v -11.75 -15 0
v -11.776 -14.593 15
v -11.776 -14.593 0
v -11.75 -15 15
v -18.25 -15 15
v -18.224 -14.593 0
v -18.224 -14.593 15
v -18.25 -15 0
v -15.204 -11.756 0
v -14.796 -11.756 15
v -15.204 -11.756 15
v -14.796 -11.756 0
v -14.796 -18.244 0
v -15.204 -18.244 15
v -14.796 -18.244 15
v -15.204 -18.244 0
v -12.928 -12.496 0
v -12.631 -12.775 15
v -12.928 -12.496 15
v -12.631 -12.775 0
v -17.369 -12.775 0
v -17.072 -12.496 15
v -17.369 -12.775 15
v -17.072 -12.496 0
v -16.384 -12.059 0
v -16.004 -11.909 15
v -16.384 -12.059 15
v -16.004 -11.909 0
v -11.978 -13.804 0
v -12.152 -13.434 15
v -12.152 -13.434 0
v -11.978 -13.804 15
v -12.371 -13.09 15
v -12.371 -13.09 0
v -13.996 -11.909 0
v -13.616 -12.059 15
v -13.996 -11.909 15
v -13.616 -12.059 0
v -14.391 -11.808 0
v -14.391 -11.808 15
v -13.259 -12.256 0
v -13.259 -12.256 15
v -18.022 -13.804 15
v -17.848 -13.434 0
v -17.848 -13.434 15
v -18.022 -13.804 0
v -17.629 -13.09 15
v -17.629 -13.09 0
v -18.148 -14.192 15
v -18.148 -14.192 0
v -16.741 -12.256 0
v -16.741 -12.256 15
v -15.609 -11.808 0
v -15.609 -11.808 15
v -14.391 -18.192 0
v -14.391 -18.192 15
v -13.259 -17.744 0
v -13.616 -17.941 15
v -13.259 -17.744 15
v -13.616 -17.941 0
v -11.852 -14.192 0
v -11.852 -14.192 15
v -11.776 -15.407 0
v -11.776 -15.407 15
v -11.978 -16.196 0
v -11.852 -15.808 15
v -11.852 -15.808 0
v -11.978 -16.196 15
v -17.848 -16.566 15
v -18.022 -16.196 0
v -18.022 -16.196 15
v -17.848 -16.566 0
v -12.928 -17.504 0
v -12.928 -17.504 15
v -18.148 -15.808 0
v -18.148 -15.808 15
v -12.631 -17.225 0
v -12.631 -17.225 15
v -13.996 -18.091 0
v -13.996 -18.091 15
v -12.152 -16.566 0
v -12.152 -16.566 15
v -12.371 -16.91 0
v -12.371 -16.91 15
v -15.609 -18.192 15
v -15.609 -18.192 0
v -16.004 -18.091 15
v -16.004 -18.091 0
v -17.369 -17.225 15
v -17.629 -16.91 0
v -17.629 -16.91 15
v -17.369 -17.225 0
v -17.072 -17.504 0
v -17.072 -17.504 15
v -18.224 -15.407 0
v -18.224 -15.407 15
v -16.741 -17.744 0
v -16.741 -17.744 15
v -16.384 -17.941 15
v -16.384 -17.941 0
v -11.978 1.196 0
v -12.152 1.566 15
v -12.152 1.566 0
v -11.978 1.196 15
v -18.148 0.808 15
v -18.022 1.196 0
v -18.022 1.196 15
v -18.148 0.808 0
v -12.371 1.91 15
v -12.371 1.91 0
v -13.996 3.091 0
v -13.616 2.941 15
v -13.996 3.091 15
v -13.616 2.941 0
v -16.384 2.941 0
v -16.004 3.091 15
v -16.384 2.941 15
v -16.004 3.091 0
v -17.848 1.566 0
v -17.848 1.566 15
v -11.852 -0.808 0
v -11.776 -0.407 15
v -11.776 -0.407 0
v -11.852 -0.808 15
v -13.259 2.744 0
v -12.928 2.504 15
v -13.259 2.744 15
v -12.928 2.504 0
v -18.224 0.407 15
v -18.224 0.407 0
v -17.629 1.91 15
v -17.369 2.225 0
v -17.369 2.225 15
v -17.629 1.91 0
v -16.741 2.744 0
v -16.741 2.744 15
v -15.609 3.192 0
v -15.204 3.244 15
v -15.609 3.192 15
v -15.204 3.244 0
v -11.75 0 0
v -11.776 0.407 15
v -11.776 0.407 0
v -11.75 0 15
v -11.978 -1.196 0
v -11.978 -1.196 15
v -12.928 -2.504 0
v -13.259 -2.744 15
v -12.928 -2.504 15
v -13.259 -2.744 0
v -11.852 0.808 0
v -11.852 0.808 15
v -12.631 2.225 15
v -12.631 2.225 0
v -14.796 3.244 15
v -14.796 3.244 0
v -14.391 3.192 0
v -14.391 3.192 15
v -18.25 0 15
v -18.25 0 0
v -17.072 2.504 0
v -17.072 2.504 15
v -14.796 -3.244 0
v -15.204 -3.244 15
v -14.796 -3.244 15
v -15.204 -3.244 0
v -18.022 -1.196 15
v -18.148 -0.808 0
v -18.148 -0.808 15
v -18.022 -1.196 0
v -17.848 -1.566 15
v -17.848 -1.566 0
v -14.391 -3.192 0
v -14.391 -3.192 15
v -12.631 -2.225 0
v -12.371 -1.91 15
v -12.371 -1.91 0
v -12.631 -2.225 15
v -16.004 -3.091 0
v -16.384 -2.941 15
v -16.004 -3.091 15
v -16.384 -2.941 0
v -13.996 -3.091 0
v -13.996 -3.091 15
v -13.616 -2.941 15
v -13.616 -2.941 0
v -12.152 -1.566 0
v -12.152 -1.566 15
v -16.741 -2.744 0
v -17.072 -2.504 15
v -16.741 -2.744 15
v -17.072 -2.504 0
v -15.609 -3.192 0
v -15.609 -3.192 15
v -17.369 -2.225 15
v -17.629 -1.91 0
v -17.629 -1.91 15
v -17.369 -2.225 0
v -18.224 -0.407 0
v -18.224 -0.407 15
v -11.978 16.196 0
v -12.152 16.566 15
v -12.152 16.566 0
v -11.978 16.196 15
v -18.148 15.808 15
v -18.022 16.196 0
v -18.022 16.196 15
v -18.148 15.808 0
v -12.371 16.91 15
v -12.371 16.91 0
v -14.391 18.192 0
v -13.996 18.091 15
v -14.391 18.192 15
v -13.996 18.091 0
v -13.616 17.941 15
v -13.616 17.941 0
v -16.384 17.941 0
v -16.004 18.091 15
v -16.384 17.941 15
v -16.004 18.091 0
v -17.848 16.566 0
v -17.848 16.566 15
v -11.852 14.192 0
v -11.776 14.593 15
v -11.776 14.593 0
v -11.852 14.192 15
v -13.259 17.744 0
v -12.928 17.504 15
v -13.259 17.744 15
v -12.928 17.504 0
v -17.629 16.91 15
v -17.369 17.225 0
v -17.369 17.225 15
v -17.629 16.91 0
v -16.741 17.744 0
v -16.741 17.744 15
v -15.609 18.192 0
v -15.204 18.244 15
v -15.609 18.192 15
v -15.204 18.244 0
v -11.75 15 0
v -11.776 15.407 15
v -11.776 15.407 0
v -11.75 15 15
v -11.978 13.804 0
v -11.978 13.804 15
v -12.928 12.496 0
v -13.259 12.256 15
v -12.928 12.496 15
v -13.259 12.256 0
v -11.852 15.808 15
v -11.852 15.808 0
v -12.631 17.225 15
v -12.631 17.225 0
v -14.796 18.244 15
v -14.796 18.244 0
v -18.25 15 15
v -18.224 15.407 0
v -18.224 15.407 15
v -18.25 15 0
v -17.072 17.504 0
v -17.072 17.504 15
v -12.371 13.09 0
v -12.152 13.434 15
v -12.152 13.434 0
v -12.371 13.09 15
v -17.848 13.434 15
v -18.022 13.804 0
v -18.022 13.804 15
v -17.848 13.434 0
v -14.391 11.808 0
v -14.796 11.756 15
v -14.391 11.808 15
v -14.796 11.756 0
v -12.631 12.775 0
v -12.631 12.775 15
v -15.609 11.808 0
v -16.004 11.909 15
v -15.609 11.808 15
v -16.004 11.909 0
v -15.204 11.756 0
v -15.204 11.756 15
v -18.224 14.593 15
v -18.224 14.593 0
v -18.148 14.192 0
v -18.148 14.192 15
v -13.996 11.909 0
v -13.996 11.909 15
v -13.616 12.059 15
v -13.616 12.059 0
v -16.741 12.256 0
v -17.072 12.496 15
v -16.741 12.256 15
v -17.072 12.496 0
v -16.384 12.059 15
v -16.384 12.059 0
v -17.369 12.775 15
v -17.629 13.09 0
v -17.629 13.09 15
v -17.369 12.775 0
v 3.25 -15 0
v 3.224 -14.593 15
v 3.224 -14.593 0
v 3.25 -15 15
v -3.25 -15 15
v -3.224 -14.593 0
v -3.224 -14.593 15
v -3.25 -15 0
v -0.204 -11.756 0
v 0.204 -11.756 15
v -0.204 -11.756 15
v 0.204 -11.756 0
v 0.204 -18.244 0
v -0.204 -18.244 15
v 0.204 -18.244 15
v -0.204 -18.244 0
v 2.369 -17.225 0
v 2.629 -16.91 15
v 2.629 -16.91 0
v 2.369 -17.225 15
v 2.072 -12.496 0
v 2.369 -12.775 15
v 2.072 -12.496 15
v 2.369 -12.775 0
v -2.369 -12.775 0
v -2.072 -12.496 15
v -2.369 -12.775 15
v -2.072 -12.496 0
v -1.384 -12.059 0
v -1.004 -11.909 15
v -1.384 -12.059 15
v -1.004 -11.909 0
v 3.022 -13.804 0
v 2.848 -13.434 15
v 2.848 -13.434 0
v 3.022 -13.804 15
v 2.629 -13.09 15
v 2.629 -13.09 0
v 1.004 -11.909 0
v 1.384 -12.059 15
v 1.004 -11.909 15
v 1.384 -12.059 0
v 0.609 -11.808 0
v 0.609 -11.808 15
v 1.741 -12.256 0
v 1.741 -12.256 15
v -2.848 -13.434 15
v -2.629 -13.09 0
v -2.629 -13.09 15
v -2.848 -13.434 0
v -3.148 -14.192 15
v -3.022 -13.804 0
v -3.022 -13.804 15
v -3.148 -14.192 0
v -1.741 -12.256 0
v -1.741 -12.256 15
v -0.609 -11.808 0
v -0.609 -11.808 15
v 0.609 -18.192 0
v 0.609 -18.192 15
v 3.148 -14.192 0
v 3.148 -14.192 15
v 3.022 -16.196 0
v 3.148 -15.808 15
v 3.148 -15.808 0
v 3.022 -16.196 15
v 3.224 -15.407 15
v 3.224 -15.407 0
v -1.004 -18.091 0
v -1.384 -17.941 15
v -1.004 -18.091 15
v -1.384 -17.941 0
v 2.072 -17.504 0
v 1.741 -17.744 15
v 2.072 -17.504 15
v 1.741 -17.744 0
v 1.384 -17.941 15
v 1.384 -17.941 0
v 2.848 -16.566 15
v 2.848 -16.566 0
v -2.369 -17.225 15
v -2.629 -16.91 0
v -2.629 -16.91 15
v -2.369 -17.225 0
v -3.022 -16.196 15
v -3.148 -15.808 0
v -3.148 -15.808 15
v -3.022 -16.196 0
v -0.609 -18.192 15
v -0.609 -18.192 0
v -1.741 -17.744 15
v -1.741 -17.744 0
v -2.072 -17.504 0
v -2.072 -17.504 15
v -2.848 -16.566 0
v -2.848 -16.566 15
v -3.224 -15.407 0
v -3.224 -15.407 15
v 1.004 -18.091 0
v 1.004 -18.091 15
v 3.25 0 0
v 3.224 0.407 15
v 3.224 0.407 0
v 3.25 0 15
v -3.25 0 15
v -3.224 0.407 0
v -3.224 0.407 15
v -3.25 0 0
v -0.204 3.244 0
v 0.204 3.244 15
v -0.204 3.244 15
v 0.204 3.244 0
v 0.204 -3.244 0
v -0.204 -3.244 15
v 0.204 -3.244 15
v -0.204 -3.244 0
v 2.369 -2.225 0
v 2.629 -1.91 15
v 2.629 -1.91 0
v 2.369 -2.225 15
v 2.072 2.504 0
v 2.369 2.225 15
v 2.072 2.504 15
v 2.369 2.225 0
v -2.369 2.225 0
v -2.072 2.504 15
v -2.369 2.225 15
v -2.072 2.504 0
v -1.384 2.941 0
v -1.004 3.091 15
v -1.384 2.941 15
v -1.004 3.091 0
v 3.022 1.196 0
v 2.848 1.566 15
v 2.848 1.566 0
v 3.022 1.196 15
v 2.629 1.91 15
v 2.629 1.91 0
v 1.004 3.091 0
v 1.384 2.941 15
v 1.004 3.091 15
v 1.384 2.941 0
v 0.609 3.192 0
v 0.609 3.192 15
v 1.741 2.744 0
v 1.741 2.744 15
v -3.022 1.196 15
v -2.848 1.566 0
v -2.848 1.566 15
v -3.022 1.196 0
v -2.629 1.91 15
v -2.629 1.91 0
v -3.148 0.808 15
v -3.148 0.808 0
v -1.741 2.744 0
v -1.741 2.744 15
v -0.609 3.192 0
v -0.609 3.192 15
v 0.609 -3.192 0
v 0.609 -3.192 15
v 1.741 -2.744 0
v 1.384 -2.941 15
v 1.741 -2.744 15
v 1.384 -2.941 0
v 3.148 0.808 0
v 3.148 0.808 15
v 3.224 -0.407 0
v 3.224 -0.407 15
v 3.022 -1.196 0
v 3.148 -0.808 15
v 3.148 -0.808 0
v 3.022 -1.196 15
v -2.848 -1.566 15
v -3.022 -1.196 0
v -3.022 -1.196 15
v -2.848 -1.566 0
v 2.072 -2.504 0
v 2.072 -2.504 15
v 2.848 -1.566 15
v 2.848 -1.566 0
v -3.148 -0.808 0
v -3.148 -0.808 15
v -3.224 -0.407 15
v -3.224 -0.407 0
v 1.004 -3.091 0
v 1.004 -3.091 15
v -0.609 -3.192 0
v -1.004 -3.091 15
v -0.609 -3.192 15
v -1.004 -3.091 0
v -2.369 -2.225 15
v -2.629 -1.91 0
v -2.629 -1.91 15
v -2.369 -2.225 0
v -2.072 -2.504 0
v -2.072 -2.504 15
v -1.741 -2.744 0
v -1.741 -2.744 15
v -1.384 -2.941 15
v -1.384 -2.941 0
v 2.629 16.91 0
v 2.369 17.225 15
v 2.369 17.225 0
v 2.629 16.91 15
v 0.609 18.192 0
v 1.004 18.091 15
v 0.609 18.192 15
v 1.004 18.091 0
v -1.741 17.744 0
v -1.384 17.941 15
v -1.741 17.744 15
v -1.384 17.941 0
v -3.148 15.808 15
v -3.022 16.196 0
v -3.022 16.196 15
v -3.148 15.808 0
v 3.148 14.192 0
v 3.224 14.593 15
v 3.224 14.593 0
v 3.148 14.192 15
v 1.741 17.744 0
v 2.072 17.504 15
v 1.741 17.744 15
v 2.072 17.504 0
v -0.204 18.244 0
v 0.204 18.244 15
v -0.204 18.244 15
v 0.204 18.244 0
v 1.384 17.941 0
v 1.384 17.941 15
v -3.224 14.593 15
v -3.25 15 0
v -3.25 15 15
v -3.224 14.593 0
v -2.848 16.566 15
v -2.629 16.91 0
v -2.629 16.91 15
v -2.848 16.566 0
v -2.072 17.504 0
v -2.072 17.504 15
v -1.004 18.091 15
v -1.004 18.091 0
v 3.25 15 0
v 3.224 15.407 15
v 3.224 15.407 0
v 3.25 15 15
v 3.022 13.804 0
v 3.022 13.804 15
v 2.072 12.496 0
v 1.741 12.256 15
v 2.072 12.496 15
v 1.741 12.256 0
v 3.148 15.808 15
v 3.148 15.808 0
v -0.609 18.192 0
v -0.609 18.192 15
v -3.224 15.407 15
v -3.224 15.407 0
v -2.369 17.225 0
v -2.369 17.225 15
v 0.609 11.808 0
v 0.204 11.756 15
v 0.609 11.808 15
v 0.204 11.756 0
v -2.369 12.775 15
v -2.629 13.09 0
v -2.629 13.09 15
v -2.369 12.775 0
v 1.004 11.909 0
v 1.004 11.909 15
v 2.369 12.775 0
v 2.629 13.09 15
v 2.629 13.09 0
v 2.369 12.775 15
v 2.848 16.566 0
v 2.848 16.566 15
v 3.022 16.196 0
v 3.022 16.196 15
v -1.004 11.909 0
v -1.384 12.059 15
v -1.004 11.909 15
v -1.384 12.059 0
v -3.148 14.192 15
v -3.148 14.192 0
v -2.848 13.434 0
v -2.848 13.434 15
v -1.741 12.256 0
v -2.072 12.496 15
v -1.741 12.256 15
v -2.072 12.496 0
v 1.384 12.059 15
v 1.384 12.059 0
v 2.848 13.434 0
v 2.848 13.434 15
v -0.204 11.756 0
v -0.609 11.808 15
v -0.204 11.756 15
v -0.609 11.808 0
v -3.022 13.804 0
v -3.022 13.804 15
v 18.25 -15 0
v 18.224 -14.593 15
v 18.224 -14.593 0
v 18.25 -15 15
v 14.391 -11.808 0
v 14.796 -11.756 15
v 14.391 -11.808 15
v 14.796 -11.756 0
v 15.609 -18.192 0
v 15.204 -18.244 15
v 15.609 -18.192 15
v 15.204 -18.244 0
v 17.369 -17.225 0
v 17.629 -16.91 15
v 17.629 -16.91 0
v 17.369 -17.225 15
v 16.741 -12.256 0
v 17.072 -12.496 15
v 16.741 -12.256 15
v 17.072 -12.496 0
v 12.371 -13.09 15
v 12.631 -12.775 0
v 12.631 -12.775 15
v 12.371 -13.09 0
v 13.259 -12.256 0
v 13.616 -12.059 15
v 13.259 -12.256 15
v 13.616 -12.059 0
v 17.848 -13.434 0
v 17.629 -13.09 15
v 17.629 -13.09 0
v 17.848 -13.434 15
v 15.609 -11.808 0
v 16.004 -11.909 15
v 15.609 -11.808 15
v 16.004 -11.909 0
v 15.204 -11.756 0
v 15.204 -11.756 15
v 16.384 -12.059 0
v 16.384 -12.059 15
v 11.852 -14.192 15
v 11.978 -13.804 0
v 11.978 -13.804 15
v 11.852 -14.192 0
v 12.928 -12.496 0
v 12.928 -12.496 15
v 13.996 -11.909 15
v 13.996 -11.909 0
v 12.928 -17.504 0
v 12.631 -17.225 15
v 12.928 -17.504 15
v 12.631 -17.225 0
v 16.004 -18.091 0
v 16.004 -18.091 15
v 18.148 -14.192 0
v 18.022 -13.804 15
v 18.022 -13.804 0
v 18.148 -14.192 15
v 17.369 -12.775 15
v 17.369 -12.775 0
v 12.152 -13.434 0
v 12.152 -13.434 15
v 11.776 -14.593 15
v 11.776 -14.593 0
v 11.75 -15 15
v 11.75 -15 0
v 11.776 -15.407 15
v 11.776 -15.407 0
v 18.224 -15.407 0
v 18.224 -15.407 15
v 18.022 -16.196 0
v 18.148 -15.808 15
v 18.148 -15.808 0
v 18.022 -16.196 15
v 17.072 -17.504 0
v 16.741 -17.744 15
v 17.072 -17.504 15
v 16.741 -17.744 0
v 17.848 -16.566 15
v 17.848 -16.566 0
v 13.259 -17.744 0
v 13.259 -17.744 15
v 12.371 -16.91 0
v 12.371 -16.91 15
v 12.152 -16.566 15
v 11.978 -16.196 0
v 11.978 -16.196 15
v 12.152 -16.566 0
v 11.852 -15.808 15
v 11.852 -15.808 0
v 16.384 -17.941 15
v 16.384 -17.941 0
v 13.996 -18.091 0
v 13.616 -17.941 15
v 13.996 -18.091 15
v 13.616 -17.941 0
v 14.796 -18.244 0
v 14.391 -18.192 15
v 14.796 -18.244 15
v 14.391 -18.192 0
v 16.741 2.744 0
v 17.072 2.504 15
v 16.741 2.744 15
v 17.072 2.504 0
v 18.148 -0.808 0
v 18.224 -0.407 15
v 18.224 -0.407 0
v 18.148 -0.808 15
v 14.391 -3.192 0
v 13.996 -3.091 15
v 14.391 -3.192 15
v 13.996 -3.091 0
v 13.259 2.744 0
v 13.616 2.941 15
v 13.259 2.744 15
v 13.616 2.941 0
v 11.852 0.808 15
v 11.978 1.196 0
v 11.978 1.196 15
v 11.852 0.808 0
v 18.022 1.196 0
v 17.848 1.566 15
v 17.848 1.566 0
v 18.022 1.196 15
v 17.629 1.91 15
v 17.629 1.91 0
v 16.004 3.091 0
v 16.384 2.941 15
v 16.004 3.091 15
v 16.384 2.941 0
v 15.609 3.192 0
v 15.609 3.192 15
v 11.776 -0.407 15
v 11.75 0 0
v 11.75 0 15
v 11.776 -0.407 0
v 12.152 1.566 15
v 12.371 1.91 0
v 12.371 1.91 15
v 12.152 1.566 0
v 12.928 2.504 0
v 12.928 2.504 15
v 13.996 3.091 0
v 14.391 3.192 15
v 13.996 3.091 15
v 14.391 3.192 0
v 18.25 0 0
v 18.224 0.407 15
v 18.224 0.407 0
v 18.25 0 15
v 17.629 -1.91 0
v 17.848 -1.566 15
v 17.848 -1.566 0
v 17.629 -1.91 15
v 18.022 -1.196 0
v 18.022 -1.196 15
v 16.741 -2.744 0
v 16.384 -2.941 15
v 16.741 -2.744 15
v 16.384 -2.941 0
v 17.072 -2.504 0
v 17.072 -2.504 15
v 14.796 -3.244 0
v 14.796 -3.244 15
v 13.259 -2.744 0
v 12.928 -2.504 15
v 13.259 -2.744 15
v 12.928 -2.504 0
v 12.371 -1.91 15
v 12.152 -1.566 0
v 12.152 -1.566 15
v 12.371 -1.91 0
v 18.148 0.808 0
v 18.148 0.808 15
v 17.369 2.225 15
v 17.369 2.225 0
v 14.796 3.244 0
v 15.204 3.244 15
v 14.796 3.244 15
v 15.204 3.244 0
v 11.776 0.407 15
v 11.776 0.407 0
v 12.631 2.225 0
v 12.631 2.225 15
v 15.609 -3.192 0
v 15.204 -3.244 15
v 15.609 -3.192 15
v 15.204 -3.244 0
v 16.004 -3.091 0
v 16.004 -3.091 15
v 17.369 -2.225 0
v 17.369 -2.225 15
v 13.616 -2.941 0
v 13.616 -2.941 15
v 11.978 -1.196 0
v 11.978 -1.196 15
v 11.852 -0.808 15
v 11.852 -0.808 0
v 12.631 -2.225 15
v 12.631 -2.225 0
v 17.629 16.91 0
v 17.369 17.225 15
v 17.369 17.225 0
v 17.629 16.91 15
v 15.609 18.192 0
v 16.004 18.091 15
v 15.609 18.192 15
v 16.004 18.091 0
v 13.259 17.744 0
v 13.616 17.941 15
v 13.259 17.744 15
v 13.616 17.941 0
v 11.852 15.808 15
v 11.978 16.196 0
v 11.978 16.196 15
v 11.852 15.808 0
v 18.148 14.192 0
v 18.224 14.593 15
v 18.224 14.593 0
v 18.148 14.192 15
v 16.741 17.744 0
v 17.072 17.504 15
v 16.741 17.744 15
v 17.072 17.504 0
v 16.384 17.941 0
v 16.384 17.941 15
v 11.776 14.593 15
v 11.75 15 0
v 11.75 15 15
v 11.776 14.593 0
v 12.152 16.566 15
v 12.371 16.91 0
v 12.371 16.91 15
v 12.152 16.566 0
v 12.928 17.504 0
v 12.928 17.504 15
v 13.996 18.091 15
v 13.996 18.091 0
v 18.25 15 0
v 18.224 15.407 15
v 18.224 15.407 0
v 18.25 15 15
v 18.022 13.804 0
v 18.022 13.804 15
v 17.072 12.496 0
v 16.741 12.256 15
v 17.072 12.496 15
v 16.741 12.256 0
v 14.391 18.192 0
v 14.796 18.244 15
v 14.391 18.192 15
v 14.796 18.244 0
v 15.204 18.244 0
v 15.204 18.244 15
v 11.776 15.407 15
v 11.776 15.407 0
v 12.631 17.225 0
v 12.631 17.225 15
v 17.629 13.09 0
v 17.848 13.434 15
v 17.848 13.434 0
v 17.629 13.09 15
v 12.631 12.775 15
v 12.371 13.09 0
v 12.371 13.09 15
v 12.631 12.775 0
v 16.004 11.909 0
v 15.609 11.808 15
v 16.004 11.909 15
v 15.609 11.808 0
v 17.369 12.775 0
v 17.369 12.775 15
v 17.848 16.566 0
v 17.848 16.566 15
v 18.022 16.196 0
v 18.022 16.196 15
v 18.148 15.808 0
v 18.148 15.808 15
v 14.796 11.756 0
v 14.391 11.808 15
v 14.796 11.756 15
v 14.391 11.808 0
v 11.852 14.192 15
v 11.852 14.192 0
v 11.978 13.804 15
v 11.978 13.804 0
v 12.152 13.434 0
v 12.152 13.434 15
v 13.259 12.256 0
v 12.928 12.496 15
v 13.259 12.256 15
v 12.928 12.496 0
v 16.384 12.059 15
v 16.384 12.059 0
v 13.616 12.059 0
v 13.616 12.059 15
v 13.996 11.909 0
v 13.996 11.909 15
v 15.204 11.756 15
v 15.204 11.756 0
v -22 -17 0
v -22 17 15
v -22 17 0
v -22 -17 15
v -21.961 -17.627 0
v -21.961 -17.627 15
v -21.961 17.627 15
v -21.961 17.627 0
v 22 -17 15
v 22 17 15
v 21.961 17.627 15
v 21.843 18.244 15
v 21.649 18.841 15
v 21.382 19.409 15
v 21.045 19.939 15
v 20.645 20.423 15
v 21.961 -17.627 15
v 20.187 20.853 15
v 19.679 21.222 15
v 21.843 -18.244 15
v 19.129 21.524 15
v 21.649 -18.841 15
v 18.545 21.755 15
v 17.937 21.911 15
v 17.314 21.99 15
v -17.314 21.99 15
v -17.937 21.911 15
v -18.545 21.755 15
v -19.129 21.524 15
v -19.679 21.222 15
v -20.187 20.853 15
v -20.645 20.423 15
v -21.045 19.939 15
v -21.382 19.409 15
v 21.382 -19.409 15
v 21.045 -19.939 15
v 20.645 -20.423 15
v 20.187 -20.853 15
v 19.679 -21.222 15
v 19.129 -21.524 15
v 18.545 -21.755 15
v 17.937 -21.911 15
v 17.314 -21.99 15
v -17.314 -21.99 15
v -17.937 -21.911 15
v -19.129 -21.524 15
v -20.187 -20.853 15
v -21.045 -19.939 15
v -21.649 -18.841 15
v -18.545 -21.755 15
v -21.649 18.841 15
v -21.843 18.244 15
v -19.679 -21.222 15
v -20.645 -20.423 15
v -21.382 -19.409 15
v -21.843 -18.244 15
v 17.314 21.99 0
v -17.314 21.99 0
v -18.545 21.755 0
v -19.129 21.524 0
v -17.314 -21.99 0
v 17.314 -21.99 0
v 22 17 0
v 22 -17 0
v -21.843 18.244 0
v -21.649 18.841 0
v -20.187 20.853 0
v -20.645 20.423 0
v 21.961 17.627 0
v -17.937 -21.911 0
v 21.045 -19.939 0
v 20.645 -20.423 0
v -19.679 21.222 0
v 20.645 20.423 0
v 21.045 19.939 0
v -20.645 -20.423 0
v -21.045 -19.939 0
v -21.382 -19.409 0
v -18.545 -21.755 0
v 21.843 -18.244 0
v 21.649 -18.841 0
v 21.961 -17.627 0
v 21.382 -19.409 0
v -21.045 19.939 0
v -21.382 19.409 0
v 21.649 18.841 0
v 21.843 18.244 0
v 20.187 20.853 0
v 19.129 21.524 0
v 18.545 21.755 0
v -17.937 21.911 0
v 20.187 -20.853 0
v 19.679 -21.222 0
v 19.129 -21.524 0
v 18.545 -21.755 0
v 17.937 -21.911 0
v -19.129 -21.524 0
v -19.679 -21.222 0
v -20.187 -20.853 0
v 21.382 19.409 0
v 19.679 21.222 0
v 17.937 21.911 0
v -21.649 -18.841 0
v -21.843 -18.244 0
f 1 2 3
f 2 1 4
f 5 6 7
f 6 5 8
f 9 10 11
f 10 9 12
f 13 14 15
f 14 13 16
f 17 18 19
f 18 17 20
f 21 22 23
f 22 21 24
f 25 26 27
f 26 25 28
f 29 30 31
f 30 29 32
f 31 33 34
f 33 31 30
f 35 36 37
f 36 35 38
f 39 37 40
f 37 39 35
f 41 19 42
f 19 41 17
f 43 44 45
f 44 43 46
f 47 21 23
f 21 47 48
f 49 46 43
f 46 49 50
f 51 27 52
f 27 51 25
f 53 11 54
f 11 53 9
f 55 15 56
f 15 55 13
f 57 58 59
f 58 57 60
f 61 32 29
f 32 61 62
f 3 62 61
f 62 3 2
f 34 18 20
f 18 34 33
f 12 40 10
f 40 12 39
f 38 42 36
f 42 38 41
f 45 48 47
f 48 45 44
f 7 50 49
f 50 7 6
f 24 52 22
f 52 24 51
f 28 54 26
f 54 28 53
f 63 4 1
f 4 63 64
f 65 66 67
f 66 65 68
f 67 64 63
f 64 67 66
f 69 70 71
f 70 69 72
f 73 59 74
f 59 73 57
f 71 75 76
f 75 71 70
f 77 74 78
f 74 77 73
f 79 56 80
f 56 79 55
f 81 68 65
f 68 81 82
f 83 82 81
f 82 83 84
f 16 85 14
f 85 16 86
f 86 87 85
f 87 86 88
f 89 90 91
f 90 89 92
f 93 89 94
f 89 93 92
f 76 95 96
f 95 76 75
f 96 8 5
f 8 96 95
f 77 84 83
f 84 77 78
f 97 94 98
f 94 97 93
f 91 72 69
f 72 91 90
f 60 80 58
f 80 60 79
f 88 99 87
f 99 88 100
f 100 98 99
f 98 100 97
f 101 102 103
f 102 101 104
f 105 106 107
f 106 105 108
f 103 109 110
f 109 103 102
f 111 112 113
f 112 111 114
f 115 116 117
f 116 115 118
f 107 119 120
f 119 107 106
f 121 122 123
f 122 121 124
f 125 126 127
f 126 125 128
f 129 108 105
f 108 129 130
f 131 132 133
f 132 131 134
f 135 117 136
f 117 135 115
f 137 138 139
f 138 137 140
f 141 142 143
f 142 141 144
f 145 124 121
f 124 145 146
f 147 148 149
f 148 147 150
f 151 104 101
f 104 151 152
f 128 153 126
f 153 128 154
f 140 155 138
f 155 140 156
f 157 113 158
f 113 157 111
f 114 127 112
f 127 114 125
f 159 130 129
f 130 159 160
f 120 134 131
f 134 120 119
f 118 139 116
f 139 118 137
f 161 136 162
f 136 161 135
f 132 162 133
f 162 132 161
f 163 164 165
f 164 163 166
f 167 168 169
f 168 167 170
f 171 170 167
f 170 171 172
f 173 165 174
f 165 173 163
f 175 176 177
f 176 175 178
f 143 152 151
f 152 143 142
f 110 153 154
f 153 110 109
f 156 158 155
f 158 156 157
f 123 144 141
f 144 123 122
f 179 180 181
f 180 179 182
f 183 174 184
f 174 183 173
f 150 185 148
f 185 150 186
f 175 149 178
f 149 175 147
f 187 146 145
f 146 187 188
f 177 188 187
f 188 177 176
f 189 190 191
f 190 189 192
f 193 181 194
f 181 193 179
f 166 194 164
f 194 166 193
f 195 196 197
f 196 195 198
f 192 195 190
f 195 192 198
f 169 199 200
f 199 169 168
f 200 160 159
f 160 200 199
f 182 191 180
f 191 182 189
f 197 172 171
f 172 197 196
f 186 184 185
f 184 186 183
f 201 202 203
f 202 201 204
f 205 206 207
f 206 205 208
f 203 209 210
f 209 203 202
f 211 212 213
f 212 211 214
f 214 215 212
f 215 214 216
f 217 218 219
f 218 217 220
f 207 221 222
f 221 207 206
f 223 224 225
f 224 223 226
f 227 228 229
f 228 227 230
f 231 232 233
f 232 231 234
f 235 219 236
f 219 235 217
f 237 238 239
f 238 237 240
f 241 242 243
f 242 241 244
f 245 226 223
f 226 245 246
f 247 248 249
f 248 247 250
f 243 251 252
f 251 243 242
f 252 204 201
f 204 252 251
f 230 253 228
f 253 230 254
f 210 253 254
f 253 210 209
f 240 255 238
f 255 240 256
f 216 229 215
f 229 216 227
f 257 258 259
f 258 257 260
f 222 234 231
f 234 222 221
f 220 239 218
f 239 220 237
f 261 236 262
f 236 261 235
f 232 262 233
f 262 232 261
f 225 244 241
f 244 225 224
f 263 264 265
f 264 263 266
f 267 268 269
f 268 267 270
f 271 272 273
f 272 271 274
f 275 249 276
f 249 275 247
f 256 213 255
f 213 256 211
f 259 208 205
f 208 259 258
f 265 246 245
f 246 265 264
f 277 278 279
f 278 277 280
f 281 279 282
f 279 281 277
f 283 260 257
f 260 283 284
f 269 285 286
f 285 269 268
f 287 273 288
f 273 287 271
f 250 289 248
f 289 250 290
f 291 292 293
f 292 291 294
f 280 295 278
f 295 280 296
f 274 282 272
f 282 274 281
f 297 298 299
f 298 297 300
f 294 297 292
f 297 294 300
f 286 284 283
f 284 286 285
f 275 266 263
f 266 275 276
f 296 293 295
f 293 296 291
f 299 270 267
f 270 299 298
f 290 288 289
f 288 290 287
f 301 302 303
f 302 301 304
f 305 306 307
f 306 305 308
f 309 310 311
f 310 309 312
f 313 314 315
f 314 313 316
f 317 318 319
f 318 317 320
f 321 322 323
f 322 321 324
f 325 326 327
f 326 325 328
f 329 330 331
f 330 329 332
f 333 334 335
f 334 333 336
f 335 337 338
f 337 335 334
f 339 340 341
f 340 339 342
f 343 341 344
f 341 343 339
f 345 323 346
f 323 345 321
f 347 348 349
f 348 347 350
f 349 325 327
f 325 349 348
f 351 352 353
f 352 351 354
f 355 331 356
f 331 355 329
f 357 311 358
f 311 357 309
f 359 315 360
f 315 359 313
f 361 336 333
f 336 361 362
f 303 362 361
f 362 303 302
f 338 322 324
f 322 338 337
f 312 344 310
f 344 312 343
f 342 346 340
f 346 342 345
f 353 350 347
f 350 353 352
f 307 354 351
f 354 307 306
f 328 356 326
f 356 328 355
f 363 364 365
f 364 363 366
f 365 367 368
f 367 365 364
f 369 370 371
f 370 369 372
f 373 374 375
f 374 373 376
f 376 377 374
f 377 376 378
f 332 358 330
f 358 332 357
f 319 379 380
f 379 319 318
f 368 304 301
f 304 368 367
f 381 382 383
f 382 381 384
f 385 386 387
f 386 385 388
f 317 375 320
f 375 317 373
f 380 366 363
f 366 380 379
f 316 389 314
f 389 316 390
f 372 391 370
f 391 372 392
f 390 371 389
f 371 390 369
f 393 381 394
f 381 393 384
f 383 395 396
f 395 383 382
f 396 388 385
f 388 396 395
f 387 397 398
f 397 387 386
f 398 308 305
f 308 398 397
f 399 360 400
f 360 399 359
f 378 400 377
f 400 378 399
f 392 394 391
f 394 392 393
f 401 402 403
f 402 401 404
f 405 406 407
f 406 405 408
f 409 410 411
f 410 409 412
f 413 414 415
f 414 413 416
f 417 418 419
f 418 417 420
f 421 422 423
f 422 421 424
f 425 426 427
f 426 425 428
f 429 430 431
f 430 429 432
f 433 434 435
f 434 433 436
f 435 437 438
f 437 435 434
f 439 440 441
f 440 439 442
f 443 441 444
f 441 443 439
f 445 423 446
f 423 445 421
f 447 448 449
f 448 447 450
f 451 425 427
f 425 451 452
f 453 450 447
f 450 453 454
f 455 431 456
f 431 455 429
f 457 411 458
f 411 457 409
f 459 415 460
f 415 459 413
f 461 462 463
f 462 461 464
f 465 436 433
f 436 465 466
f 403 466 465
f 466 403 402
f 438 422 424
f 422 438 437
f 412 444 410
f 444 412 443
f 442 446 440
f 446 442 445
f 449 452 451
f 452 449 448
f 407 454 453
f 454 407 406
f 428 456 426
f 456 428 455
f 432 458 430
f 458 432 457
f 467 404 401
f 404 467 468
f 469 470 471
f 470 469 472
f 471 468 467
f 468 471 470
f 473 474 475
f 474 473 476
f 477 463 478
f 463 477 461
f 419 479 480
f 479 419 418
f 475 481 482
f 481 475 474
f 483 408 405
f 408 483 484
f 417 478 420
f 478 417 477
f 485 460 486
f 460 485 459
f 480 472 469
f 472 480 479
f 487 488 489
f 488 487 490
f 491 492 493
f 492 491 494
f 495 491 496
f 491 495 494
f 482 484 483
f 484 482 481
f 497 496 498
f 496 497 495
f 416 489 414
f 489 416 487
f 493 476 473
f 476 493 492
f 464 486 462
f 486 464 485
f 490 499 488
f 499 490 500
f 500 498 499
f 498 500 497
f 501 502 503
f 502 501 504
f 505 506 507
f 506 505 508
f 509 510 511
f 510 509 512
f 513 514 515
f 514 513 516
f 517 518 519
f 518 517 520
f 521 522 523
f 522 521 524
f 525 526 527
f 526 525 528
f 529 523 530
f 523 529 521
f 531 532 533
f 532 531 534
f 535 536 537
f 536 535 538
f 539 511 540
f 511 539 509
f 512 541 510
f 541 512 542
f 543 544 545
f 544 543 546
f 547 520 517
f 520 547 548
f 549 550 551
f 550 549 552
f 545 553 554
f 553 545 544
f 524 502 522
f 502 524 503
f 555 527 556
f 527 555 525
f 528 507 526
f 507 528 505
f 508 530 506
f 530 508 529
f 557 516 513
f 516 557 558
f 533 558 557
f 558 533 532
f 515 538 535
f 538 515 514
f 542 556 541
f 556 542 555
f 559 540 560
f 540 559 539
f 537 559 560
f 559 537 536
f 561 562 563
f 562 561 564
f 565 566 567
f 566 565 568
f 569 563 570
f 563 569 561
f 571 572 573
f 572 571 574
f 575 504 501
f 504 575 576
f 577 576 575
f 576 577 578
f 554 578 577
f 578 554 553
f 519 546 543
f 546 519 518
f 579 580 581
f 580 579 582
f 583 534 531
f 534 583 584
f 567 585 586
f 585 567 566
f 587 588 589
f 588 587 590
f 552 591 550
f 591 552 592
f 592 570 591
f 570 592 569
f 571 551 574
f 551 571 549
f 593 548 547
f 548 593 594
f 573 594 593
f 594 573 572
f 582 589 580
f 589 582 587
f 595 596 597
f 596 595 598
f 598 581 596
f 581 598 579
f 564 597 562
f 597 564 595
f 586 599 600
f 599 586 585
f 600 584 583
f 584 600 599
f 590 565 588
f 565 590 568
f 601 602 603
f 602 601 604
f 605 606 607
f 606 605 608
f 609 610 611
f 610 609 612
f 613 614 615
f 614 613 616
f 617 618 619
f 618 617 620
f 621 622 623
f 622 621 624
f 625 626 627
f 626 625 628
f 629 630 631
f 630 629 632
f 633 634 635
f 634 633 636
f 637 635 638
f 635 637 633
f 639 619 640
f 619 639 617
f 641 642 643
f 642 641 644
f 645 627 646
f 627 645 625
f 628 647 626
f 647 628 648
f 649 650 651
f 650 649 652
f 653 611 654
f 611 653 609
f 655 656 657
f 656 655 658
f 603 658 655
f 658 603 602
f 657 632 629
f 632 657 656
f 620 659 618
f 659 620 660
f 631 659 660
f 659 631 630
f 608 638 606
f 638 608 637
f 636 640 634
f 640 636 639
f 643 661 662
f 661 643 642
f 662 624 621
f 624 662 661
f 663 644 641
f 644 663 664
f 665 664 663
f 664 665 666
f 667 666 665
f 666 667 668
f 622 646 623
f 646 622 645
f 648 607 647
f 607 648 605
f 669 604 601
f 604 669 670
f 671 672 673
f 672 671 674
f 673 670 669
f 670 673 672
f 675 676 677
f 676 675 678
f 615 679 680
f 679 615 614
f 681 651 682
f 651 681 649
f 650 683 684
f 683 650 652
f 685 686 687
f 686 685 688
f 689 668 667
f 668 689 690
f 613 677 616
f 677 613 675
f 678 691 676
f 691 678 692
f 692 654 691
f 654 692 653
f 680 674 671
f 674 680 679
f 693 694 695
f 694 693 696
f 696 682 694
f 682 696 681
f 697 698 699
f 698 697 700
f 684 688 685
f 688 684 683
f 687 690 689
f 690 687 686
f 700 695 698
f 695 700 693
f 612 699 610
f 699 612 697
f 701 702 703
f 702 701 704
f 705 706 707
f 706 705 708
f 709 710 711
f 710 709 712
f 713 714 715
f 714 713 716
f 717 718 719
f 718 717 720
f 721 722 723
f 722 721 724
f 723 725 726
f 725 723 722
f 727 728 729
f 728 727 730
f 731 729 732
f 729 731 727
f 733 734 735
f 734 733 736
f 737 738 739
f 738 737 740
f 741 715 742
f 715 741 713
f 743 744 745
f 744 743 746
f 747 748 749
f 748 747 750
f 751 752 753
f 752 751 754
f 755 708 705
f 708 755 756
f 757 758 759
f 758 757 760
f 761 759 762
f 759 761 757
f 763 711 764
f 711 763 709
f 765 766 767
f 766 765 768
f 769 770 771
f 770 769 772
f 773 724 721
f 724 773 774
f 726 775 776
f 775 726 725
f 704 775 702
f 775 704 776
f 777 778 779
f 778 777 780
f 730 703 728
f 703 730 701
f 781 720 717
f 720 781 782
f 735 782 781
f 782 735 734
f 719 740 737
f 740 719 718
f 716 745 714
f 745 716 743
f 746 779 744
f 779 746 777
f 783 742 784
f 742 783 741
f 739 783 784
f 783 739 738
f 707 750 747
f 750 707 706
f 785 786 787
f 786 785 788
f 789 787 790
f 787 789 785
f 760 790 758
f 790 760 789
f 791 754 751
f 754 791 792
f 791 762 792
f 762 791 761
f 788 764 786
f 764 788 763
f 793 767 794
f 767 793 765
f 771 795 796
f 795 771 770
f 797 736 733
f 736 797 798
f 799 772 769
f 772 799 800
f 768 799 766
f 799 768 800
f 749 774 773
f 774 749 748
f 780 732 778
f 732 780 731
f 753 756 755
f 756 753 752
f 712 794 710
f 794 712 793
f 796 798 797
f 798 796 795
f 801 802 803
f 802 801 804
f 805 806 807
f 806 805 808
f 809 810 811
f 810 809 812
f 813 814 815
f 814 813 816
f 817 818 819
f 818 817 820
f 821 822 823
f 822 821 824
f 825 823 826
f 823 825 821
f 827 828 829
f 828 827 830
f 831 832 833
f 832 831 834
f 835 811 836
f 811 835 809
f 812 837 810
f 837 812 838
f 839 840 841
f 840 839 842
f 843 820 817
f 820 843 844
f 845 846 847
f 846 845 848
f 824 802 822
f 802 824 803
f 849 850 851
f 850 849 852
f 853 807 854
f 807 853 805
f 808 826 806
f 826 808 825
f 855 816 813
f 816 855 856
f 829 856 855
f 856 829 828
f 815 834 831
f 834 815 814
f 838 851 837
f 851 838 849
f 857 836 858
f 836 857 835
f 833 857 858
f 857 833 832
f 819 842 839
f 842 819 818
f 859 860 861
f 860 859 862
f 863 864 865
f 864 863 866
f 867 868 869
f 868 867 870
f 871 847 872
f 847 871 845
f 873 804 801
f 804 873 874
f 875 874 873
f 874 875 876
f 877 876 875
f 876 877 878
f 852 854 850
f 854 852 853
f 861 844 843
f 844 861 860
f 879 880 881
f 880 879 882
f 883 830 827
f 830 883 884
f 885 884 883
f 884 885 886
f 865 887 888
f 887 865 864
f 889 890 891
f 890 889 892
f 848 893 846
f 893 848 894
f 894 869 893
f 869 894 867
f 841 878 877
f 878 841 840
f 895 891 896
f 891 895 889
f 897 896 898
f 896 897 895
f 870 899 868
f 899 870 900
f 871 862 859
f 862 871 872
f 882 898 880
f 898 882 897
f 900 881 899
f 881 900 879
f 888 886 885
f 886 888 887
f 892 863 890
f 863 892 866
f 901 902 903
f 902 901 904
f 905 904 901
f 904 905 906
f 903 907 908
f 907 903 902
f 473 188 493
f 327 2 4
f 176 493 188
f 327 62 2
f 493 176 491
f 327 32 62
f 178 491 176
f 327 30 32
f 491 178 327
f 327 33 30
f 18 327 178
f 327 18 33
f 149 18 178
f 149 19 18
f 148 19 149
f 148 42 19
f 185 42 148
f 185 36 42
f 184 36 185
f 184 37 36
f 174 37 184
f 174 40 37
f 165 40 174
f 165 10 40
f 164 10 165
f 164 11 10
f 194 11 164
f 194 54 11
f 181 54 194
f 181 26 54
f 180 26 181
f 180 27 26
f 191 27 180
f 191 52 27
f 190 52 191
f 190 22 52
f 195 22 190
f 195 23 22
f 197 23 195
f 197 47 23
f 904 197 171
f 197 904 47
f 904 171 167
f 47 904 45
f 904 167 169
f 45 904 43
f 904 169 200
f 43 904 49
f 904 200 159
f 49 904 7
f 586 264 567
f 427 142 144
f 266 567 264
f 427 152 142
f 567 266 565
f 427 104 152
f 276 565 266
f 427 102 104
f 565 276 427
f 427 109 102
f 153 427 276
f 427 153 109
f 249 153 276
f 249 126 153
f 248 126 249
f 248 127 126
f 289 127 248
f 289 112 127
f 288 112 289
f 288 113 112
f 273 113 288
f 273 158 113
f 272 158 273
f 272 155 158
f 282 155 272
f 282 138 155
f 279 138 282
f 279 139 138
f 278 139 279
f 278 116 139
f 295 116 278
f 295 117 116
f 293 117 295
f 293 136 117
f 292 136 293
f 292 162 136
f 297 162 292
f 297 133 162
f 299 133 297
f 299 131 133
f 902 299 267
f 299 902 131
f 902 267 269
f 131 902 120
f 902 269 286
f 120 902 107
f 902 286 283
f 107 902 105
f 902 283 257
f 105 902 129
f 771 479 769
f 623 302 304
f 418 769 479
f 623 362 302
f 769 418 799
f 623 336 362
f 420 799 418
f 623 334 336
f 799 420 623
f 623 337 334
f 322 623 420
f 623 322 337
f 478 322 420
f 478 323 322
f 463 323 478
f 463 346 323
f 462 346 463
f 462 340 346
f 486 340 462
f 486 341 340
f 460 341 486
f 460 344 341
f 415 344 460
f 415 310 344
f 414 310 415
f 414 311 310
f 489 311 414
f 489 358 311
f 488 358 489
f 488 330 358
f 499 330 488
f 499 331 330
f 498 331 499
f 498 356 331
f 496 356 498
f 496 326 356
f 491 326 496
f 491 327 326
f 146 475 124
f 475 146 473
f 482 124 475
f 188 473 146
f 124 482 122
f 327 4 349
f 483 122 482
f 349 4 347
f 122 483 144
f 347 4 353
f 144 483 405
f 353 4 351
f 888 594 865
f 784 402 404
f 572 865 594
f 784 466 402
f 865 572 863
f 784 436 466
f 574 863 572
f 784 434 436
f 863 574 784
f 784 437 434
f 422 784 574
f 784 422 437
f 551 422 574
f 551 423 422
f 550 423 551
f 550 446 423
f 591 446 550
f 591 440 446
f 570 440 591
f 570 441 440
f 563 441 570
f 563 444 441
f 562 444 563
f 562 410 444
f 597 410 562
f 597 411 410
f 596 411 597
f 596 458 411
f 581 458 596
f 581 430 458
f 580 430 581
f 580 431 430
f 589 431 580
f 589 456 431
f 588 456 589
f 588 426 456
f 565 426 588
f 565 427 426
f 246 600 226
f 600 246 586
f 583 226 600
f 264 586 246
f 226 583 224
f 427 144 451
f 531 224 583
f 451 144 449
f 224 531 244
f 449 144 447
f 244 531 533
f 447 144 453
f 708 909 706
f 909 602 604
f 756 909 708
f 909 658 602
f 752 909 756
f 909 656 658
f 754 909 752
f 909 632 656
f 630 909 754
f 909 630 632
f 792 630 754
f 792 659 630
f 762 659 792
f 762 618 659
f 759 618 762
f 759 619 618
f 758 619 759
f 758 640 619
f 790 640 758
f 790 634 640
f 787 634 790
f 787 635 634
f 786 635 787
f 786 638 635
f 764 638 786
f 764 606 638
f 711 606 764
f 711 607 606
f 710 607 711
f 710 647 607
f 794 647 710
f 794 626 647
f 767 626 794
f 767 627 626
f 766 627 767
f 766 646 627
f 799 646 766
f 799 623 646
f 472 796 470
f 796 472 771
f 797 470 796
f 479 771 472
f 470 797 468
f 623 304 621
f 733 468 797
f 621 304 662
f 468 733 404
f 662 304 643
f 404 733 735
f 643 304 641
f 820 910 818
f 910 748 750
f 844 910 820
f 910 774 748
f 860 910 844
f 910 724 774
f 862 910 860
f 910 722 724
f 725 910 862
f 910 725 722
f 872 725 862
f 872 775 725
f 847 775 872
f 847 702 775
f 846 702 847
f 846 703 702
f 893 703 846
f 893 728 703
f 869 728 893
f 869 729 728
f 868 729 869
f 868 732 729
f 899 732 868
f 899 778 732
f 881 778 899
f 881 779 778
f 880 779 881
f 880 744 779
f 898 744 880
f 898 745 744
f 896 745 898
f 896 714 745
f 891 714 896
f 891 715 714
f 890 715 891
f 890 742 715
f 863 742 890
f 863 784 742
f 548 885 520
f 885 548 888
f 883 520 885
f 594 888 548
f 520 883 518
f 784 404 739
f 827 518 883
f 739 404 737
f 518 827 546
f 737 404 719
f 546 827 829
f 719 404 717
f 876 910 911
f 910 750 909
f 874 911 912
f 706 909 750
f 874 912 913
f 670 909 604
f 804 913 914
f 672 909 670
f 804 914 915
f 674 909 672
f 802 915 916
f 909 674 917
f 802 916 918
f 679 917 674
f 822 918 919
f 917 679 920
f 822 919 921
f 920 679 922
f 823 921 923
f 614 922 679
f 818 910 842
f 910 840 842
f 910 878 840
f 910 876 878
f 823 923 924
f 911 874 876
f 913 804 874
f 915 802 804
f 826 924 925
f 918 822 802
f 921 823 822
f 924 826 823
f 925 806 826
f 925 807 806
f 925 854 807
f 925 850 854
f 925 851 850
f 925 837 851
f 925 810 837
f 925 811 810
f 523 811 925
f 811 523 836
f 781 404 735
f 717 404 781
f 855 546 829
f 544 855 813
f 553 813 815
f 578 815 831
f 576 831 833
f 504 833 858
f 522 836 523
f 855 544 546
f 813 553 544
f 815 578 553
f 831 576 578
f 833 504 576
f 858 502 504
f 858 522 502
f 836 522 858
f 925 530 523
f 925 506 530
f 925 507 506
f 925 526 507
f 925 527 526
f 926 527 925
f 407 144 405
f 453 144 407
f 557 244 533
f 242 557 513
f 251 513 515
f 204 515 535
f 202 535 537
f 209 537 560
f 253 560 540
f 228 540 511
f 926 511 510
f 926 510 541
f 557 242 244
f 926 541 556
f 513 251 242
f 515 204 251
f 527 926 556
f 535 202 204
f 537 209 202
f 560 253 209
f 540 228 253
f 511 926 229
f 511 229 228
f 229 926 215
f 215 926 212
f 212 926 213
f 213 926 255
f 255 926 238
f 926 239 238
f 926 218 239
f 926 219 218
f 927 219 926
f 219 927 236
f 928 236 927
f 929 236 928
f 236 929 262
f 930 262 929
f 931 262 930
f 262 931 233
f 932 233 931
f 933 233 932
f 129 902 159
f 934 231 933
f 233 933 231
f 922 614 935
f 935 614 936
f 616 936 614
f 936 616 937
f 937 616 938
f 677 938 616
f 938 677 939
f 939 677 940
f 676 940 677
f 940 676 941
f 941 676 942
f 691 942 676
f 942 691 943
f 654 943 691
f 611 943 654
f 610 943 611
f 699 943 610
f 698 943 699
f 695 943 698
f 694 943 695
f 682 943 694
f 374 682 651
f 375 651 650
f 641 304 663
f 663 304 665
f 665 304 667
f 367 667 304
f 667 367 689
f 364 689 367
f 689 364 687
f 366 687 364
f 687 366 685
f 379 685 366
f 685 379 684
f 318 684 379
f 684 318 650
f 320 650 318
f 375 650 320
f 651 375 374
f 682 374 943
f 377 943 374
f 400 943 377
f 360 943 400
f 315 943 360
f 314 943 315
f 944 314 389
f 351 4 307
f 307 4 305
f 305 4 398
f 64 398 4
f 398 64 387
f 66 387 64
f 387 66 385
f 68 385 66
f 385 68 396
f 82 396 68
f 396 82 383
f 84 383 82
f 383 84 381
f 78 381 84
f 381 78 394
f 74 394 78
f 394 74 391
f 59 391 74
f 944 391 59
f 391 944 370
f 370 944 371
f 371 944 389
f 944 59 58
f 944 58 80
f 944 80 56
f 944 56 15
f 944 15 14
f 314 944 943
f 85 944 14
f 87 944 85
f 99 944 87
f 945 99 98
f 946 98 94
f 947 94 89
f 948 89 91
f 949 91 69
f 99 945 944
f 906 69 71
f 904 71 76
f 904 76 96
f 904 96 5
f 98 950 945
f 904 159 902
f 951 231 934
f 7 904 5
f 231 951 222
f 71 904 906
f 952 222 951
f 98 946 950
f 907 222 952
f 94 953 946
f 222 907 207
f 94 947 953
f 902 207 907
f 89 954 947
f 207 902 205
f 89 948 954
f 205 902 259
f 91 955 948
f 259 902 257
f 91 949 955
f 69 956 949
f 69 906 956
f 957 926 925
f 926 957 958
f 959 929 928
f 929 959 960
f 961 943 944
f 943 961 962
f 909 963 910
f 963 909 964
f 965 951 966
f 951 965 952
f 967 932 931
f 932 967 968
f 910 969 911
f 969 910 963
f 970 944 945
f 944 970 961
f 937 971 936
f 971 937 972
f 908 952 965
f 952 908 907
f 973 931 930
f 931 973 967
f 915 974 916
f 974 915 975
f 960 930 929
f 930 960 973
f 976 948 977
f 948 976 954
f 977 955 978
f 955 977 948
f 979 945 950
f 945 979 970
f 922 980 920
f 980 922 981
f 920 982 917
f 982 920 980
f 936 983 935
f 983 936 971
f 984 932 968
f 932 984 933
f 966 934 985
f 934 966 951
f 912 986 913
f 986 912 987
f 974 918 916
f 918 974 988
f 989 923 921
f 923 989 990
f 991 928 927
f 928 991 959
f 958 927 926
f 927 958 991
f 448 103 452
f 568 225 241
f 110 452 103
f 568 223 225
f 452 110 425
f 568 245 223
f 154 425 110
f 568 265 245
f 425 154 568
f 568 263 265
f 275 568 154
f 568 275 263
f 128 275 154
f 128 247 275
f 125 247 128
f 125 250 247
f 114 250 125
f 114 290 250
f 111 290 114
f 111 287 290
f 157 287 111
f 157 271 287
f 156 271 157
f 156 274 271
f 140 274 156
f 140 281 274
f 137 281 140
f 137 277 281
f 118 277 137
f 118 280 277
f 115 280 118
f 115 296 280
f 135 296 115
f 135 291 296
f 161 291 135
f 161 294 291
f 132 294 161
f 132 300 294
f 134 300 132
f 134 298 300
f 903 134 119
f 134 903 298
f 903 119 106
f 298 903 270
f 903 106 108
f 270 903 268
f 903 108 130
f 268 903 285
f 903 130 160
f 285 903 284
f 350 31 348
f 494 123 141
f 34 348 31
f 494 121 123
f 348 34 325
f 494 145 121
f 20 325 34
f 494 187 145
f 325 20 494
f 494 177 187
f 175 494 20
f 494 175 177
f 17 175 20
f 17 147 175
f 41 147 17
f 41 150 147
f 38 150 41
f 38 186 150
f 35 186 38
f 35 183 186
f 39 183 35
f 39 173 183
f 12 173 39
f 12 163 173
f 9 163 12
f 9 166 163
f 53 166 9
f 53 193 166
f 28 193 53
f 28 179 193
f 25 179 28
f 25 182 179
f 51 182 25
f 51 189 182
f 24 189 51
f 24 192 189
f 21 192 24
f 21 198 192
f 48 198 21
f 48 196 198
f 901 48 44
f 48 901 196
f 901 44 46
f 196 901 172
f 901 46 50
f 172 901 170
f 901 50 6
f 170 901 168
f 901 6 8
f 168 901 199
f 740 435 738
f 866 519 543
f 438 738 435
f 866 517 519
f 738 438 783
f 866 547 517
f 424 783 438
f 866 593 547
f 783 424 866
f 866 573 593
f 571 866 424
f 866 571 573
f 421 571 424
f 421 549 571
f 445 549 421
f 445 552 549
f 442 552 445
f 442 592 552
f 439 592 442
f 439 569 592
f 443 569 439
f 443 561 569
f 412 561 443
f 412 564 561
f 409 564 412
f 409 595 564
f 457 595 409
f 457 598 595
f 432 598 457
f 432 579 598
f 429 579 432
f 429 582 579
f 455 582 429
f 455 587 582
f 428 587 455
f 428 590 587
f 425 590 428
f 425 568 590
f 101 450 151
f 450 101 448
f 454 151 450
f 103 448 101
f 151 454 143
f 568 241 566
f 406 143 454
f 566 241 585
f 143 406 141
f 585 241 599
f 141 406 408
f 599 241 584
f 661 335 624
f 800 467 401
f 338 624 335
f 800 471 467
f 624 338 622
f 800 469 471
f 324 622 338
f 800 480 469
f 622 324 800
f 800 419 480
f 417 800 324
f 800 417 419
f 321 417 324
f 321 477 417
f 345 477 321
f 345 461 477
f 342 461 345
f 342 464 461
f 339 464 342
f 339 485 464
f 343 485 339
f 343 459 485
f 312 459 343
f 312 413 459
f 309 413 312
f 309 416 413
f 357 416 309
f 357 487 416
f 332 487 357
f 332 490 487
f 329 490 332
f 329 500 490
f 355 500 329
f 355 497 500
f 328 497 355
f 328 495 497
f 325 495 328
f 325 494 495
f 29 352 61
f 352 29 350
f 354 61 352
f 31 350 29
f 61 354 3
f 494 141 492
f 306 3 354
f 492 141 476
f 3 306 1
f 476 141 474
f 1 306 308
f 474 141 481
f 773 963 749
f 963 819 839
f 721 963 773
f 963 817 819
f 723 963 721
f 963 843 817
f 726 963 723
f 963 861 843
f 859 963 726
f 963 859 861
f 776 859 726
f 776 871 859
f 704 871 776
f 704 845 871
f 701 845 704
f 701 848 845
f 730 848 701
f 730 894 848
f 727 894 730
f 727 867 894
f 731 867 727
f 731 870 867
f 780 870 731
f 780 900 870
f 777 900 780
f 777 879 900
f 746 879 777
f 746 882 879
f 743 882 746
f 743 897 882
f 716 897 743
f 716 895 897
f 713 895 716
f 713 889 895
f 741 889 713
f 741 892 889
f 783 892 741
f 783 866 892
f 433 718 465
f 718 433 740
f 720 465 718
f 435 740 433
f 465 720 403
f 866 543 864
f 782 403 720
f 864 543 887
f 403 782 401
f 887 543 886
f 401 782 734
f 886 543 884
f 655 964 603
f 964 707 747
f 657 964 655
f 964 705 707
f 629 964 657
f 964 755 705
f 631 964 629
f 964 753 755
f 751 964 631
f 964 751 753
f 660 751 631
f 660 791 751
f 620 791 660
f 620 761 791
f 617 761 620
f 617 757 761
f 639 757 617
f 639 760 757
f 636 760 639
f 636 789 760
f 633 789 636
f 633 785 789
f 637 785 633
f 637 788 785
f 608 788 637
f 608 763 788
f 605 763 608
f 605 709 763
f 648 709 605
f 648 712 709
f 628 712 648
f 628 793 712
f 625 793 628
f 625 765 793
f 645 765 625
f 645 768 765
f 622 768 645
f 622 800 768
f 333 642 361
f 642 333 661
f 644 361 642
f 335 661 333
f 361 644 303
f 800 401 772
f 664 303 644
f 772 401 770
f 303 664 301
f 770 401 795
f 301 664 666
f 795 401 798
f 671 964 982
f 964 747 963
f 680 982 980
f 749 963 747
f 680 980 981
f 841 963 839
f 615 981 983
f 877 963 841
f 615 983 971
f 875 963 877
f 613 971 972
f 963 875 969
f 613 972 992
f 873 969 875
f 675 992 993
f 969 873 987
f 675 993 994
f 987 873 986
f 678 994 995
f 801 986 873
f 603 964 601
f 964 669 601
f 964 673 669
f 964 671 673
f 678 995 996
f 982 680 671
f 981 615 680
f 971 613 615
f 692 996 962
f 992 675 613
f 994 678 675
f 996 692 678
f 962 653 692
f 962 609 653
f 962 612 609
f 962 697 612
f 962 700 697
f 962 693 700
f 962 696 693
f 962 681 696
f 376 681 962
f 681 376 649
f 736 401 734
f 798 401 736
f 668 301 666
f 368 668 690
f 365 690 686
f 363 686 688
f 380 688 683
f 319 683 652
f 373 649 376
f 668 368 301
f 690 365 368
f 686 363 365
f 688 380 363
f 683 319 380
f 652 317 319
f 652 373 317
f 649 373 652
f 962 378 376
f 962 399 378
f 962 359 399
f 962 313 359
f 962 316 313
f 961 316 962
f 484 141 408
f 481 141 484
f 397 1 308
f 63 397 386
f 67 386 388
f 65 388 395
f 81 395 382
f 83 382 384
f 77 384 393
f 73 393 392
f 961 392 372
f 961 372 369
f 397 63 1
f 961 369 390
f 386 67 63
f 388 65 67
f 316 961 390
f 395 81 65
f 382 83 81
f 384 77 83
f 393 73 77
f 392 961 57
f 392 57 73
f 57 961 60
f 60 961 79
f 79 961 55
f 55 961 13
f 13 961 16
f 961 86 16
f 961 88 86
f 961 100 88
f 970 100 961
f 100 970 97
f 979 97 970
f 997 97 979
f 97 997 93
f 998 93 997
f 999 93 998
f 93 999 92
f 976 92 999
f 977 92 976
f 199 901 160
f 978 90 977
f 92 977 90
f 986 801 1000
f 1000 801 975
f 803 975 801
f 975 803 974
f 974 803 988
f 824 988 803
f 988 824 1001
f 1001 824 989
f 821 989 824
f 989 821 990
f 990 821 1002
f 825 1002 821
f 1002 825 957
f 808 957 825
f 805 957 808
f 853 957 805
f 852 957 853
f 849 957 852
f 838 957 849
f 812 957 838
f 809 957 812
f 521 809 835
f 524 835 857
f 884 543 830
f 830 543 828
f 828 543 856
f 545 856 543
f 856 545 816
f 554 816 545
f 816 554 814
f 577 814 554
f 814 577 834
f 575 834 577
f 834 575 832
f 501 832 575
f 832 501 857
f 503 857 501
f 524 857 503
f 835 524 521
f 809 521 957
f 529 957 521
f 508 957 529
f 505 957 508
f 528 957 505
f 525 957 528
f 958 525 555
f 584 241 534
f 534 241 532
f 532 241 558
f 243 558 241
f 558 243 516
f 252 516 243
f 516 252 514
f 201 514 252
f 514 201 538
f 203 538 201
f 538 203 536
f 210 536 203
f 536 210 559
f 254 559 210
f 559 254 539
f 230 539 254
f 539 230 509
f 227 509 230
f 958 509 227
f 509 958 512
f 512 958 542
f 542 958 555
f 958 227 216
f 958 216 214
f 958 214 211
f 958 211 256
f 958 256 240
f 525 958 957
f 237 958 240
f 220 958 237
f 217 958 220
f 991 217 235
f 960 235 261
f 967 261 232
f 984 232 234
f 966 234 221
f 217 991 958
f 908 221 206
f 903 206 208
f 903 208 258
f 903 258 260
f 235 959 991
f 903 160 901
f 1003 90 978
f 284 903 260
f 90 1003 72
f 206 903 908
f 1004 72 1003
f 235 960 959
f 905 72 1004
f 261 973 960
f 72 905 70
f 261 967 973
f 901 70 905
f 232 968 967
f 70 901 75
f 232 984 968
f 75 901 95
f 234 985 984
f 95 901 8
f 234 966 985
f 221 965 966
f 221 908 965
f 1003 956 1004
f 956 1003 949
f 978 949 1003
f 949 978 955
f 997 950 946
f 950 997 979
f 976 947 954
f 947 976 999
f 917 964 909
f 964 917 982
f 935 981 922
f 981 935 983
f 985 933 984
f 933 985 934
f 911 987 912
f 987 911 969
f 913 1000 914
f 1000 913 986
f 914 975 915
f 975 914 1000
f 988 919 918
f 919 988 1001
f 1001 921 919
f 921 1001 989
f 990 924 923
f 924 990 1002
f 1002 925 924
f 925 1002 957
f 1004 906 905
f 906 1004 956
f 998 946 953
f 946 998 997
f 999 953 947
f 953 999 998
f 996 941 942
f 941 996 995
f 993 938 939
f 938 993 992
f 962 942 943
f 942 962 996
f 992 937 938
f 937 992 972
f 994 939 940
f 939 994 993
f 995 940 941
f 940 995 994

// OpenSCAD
$fn = 50;


difference() {
	union() {
		hull() {
			translate(v = [-17.0000000000, 17.0000000000, 0]) {
				cylinder(h = 15, r = 5);
			}
			translate(v = [17.0000000000, 17.0000000000, 0]) {
				cylinder(h = 15, r = 5);
			}
			translate(v = [-17.0000000000, -17.0000000000, 0]) {
				cylinder(h = 15, r = 5);
			}
			translate(v = [17.0000000000, -17.0000000000, 0]) {
				cylinder(h = 15, r = 5);
			}
		}
	}
	union() {
		translate(v = [-15.0000000000, -15.0000000000, 0]) {
			translate(v = [0, 0, -100]) {
				cylinder(h = 200, r = 3.2500000000);
			}
		}
		translate(v = [-15.0000000000, 0.0000000000, 0]) {
			translate(v = [0, 0, -100]) {
				cylinder(h = 200, r = 3.2500000000);
			}
		}
		translate(v = [-15.0000000000, 15.0000000000, 0]) {
			translate(v = [0, 0, -100]) {
				cylinder(h = 200, r = 3.2500000000);
			}
		}
		translate(v = [0.0000000000, -15.0000000000, 0]) {
			translate(v = [0, 0, -100]) {
				cylinder(h = 200, r = 3.2500000000);
			}
		}
		translate(v = [0, 0, -100]) {
			cylinder(h = 200, r = 3.2500000000);
		}
		translate(v = [0.0000000000, 15.0000000000, 0]) {
			translate(v = [0, 0, -100]) {
				cylinder(h = 200, r = 3.2500000000);
			}
		}
		translate(v = [15.0000000000, -15.0000000000, 0]) {
			translate(v = [0, 0, -100]) {
				cylinder(h = 200, r = 3.2500000000);
			}
		}
		translate(v = [15.0000000000, 0.0000000000, 0]) {
			translate(v = [0, 0, -100]) {
				cylinder(h = 200, r = 3.2500000000);
			}
		}
		translate(v = [15.0000000000, 15.0000000000, 0]) {
			translate(v = [0, 0, -100]) {
				cylinder(h = 200, r = 3.2500000000);
			}
		}
	}
}
